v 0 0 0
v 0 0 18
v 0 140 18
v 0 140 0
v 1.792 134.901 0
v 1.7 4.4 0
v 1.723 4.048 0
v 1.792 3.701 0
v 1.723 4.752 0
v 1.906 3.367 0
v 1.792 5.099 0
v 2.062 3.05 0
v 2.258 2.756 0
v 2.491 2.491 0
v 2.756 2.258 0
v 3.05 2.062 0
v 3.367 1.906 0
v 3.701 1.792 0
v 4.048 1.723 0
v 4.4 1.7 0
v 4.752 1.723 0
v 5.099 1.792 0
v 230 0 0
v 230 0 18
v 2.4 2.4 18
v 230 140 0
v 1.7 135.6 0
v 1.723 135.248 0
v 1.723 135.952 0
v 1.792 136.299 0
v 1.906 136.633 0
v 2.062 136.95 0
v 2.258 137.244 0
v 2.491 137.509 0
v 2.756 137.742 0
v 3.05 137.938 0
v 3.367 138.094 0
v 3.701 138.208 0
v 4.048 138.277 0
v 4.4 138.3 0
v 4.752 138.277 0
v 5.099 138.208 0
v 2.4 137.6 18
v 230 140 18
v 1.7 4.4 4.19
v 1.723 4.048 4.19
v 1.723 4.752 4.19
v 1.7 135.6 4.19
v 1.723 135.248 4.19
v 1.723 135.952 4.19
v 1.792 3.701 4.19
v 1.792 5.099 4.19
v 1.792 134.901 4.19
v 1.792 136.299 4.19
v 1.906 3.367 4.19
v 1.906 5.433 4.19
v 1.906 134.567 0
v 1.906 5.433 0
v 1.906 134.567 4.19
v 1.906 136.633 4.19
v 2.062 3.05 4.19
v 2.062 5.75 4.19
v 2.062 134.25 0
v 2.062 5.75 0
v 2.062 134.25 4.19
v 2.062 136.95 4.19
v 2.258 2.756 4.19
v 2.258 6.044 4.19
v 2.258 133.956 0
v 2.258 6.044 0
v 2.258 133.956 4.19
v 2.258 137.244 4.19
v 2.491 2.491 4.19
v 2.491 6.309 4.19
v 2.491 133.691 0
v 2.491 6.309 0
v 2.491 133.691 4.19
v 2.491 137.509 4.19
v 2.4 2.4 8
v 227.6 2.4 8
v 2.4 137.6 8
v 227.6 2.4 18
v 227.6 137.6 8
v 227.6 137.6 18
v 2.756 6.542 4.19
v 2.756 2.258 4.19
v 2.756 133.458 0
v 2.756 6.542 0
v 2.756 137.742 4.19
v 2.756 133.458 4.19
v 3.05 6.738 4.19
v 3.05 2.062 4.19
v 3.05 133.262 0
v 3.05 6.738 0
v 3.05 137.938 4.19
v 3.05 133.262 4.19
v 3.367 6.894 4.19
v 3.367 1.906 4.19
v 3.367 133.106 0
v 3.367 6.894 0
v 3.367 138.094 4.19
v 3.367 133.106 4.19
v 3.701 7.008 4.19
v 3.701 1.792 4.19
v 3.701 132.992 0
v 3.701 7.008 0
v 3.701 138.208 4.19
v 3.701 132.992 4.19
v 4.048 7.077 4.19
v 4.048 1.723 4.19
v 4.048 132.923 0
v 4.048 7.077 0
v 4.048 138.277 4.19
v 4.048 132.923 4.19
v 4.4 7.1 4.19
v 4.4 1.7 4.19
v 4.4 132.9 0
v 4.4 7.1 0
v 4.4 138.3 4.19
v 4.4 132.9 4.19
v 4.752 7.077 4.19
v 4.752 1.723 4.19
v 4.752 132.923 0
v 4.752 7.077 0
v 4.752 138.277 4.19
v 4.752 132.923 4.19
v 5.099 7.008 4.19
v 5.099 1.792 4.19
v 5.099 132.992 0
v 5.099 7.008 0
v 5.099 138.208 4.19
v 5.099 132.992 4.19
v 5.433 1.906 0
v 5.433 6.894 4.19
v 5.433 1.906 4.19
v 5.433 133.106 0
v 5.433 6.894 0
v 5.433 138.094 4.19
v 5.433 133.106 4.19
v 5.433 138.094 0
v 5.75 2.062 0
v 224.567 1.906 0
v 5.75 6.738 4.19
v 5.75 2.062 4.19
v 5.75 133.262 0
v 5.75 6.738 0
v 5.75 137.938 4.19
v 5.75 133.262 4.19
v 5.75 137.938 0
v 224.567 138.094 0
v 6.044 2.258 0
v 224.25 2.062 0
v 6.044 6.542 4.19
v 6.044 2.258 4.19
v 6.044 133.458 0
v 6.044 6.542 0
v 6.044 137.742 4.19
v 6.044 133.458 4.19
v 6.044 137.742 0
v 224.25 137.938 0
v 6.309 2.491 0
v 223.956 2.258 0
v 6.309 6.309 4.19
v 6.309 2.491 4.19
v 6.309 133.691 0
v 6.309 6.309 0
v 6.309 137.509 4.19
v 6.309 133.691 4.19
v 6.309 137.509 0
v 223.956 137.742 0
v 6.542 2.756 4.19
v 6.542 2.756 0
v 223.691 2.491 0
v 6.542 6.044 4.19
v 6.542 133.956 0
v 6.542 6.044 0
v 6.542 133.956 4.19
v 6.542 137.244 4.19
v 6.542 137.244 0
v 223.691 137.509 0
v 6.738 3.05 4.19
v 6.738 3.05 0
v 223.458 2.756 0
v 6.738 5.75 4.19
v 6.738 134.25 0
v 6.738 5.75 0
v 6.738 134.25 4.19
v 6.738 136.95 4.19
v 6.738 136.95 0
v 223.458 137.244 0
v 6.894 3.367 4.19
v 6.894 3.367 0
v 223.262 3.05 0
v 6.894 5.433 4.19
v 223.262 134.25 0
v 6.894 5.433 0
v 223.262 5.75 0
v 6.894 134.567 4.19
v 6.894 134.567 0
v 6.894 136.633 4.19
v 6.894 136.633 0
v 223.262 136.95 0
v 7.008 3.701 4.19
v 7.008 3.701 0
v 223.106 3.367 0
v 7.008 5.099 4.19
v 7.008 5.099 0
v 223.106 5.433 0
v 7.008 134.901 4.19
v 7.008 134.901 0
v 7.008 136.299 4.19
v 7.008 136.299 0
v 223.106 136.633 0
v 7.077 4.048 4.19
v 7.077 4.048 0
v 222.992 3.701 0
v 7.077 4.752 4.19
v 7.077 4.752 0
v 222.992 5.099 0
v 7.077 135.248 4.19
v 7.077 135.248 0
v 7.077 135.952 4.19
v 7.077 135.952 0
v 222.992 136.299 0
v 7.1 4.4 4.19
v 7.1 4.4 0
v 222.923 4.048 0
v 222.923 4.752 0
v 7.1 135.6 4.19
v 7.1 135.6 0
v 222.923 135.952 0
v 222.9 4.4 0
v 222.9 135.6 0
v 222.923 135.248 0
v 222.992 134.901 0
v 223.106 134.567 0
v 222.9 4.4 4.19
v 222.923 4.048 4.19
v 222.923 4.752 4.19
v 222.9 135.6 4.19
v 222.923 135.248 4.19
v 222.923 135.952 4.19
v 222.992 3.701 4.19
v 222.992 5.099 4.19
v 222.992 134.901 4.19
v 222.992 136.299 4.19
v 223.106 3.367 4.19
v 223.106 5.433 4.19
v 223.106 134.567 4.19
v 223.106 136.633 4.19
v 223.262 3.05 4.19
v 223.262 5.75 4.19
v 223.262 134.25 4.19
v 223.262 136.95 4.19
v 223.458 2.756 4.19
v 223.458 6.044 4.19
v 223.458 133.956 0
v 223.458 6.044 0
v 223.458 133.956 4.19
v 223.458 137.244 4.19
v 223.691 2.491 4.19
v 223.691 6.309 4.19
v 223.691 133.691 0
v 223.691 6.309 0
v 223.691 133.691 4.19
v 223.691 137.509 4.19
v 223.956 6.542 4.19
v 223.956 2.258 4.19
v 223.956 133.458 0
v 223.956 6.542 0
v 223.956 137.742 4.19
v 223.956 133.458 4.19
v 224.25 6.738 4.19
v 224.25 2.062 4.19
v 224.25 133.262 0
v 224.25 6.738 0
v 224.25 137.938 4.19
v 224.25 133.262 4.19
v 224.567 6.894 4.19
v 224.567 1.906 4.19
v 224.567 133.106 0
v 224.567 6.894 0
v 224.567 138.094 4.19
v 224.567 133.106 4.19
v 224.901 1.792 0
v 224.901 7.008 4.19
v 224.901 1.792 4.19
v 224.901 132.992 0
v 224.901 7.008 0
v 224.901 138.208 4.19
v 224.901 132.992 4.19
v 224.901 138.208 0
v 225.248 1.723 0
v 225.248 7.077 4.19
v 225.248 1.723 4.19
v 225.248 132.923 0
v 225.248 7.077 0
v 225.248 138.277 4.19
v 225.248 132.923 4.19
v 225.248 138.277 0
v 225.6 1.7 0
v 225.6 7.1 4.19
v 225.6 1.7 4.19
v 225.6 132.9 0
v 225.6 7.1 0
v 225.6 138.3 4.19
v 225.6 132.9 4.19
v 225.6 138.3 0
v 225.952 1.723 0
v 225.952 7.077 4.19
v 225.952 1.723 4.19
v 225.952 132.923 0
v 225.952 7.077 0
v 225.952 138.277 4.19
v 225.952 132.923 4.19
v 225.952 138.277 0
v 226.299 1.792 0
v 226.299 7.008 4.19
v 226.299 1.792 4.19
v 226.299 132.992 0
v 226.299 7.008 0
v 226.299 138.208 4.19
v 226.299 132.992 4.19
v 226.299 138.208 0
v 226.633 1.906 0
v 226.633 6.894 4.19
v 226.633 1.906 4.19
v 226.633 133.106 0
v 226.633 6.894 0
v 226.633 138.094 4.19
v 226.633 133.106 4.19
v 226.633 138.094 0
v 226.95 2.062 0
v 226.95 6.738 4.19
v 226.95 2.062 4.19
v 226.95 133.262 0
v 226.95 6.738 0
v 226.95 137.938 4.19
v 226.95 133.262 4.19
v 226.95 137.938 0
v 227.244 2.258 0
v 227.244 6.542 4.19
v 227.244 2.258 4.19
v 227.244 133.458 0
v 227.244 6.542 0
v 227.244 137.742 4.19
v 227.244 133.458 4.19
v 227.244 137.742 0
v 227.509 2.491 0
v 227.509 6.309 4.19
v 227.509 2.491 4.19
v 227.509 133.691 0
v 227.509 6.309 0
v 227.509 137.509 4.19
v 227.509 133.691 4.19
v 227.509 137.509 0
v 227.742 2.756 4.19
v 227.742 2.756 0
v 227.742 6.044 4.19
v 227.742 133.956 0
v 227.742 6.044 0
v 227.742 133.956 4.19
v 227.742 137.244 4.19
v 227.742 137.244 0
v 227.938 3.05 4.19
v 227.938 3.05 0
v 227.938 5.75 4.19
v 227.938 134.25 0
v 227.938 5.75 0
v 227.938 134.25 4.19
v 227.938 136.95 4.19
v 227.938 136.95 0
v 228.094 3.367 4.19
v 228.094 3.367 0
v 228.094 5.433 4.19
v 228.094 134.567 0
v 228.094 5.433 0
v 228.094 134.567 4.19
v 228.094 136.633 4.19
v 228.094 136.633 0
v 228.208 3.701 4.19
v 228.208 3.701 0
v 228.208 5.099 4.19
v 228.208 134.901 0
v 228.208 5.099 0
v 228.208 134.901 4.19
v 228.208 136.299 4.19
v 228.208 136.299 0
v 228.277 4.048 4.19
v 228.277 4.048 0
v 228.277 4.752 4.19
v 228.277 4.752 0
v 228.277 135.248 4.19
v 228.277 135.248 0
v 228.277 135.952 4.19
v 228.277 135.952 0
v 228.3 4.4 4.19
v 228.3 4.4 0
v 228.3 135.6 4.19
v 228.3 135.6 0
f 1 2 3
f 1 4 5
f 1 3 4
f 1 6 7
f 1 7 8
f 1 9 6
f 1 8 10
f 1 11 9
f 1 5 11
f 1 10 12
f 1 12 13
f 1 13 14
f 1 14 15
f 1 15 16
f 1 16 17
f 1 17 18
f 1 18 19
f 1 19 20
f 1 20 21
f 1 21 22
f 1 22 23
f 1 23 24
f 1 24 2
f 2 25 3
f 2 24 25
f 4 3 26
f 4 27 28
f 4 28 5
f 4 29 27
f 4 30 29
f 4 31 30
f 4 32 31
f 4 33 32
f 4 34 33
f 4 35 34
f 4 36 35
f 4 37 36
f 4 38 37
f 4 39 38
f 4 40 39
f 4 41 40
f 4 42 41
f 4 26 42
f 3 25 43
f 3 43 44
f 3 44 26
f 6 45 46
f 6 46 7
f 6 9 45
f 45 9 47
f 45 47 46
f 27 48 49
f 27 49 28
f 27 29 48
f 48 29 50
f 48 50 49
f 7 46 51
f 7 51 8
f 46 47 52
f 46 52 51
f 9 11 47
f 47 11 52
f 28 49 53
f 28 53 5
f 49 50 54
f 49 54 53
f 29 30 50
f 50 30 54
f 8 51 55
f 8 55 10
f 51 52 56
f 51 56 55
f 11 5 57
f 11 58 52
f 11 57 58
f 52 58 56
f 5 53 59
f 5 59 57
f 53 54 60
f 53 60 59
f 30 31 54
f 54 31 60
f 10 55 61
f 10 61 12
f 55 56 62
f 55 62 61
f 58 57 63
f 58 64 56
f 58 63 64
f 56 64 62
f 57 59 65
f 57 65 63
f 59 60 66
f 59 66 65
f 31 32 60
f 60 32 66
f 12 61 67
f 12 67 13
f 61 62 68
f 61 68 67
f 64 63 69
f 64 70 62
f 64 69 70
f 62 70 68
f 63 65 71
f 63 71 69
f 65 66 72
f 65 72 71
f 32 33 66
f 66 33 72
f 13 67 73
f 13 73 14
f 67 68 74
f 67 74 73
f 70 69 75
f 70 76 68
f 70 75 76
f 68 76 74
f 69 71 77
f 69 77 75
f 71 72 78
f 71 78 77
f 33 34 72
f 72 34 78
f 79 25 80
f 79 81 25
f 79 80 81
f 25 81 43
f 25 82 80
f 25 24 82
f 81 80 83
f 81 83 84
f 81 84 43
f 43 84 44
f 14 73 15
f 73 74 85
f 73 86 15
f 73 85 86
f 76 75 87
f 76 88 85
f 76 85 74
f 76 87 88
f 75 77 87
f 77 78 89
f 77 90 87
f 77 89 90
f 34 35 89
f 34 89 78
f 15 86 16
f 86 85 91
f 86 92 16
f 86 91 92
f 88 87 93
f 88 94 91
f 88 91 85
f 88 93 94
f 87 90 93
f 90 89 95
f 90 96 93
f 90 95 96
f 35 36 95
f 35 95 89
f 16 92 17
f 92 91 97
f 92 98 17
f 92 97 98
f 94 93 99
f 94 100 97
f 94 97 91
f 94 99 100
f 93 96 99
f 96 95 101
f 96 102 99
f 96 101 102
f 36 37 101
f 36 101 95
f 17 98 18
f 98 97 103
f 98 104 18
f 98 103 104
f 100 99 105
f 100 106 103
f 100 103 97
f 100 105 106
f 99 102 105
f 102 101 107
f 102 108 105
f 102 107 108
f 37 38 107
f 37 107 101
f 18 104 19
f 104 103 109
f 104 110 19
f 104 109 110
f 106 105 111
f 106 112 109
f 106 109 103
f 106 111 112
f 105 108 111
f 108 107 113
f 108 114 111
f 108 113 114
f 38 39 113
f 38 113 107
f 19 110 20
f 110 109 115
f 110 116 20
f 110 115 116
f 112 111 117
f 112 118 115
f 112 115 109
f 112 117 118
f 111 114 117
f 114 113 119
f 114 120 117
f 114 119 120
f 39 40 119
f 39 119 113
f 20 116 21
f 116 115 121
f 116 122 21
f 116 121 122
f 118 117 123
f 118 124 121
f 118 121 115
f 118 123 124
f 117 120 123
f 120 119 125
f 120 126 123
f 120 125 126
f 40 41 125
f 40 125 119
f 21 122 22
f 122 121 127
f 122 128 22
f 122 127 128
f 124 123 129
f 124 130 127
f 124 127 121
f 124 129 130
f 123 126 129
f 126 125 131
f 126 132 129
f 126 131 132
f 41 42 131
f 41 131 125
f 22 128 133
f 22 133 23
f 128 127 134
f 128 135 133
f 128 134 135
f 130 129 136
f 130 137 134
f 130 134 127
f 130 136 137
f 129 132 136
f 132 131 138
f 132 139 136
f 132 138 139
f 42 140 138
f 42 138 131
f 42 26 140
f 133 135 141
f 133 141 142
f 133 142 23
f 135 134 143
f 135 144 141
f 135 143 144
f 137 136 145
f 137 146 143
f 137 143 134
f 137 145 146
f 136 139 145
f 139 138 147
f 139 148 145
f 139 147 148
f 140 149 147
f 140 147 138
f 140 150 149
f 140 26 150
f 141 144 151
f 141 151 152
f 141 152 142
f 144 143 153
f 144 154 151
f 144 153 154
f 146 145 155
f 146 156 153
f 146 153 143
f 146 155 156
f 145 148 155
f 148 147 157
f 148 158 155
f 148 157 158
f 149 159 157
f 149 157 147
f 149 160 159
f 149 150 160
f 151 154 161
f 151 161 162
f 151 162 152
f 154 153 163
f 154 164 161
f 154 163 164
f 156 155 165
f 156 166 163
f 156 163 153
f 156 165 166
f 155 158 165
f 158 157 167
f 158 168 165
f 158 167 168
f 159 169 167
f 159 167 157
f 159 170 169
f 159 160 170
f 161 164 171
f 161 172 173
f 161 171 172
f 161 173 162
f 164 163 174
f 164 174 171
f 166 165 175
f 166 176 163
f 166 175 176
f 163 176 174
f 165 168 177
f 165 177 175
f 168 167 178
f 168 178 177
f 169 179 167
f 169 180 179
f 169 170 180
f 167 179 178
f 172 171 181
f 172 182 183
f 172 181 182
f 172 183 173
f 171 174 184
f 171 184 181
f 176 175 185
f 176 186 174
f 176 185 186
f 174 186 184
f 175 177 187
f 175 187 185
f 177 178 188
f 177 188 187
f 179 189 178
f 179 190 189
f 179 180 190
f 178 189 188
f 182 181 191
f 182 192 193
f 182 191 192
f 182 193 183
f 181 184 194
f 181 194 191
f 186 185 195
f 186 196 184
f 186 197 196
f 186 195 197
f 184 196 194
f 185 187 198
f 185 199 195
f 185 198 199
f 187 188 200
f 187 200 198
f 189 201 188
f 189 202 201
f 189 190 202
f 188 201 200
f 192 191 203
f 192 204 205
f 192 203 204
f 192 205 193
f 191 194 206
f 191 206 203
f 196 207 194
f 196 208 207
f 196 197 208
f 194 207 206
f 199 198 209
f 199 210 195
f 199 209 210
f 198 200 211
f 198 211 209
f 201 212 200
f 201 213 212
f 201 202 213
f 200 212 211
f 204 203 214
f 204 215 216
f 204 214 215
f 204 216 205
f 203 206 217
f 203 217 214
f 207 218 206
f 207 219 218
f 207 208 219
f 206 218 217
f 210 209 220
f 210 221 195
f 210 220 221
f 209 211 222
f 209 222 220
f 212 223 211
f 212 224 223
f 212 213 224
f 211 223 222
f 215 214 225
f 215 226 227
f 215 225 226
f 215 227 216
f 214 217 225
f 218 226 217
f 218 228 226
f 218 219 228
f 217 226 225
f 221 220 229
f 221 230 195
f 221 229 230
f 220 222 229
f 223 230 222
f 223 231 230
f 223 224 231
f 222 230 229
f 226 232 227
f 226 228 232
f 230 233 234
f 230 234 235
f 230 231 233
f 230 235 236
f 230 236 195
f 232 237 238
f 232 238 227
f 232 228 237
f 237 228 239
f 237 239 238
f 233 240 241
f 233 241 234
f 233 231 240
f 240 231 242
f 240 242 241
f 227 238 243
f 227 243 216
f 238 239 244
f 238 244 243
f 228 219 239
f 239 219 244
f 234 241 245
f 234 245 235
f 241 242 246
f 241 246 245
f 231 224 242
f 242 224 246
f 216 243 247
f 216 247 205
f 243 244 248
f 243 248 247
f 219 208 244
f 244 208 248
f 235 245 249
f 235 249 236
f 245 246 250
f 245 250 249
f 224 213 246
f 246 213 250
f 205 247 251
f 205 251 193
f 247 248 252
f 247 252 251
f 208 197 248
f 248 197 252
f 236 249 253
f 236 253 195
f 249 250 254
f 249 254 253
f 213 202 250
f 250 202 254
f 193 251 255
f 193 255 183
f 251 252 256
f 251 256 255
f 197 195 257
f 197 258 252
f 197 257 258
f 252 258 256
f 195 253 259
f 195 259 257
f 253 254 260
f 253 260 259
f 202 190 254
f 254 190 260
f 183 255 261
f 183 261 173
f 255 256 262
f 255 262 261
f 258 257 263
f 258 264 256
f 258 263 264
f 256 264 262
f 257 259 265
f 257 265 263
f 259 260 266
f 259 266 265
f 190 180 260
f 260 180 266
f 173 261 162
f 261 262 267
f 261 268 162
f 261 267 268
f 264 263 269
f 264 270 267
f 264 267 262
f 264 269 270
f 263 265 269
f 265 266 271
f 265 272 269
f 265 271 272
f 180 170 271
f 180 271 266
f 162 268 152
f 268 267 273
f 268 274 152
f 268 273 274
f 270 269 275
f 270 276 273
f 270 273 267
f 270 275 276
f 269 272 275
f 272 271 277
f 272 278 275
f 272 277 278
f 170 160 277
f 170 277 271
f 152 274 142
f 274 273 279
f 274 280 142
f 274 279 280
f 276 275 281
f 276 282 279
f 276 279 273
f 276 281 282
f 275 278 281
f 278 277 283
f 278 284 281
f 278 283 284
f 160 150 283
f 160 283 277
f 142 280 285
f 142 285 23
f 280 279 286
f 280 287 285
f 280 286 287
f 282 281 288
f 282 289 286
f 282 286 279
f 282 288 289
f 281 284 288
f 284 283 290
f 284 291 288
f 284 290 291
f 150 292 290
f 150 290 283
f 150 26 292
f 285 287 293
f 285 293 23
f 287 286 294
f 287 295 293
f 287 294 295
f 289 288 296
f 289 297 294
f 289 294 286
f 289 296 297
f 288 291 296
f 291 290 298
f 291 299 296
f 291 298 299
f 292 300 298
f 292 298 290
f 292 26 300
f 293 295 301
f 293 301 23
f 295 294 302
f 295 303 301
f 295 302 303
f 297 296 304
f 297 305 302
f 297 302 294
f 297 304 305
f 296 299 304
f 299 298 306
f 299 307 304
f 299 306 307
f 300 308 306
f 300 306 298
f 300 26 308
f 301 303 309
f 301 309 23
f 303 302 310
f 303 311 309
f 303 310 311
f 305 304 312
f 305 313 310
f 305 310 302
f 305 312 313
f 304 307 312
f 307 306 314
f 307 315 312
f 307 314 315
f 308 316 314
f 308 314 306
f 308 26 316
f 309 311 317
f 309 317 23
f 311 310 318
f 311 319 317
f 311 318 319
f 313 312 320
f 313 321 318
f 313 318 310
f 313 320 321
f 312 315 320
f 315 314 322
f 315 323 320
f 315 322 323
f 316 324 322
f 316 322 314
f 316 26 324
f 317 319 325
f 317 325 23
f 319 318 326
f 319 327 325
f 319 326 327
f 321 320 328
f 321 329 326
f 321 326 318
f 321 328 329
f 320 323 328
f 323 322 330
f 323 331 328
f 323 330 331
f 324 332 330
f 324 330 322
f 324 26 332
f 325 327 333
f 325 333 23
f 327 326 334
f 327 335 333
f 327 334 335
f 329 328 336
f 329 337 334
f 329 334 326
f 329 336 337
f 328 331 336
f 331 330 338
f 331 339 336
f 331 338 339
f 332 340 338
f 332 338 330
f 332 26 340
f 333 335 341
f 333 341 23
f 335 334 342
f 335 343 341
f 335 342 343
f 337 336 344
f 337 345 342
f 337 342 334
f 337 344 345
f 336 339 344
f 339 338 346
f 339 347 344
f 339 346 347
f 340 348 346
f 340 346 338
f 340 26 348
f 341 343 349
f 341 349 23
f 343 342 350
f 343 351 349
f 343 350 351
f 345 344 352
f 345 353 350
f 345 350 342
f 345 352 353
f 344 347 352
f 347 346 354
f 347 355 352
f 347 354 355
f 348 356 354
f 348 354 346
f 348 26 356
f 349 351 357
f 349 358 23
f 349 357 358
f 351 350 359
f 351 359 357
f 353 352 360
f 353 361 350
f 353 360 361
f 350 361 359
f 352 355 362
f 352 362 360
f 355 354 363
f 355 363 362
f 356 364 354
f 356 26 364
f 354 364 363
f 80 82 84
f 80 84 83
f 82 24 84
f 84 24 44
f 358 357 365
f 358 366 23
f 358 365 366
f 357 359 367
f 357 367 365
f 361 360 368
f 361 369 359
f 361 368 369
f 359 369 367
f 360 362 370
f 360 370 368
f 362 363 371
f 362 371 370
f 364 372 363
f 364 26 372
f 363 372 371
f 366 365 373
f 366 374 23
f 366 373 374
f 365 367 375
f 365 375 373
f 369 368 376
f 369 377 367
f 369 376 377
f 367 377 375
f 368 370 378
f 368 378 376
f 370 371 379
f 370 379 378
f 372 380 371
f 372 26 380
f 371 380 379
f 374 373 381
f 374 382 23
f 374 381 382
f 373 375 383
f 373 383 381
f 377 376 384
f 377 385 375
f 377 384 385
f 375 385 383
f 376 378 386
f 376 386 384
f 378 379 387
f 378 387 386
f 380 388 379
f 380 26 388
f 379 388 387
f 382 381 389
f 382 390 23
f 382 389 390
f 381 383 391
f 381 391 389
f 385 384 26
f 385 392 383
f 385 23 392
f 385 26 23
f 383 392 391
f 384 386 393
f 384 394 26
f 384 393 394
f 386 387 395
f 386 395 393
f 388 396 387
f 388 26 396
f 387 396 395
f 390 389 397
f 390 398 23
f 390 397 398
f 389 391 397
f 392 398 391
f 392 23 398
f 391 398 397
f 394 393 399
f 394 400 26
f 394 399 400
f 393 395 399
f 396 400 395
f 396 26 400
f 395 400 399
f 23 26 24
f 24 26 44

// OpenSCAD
// Print Shelving — Top Cap
//
// Closed lid that sits on the topmost tier. Same footprint, has
// peg-holes underneath to lock onto the tier below, and a shallow
// display ledge on top (10 mm lip around the perimeter) so you can
// set a finished print on top without it rolling off.
//
// Print time: ~1 hour at 0.24 mm draft.

$fn = 48;

W        = 230;
D        = 140;
CAP_H    = 8;     // solid cap thickness
LIP_H    = 10;    // decorative lip height
LIP_WALL = 2.4;
HOLE_D   = 5.4;
HOLE_H   = 4.2;
CORNER_INSET = 2.4 + 2;

PEG_POSITIONS = [
    [CORNER_INSET,         CORNER_INSET],
    [W - CORNER_INSET,     CORNER_INSET],
    [CORNER_INSET,         D - CORNER_INSET],
    [W - CORNER_INSET,     D - CORNER_INSET],
];

module cap_body() {
    union() {
        // Base plate
        cube([W, D, CAP_H]);
        // Display lip around the perimeter
        difference() {
            translate([0, 0, CAP_H])
                cube([W, D, LIP_H]);
            translate([LIP_WALL, LIP_WALL, CAP_H - 0.01])
                cube([W - 2*LIP_WALL, D - 2*LIP_WALL, LIP_H + 0.02]);
        }
    }
}

difference() {
    cap_body();
    for (p = PEG_POSITIONS)
        translate([p[0], p[1], -0.01]) cylinder(h = HOLE_H, d = HOLE_D);
}
